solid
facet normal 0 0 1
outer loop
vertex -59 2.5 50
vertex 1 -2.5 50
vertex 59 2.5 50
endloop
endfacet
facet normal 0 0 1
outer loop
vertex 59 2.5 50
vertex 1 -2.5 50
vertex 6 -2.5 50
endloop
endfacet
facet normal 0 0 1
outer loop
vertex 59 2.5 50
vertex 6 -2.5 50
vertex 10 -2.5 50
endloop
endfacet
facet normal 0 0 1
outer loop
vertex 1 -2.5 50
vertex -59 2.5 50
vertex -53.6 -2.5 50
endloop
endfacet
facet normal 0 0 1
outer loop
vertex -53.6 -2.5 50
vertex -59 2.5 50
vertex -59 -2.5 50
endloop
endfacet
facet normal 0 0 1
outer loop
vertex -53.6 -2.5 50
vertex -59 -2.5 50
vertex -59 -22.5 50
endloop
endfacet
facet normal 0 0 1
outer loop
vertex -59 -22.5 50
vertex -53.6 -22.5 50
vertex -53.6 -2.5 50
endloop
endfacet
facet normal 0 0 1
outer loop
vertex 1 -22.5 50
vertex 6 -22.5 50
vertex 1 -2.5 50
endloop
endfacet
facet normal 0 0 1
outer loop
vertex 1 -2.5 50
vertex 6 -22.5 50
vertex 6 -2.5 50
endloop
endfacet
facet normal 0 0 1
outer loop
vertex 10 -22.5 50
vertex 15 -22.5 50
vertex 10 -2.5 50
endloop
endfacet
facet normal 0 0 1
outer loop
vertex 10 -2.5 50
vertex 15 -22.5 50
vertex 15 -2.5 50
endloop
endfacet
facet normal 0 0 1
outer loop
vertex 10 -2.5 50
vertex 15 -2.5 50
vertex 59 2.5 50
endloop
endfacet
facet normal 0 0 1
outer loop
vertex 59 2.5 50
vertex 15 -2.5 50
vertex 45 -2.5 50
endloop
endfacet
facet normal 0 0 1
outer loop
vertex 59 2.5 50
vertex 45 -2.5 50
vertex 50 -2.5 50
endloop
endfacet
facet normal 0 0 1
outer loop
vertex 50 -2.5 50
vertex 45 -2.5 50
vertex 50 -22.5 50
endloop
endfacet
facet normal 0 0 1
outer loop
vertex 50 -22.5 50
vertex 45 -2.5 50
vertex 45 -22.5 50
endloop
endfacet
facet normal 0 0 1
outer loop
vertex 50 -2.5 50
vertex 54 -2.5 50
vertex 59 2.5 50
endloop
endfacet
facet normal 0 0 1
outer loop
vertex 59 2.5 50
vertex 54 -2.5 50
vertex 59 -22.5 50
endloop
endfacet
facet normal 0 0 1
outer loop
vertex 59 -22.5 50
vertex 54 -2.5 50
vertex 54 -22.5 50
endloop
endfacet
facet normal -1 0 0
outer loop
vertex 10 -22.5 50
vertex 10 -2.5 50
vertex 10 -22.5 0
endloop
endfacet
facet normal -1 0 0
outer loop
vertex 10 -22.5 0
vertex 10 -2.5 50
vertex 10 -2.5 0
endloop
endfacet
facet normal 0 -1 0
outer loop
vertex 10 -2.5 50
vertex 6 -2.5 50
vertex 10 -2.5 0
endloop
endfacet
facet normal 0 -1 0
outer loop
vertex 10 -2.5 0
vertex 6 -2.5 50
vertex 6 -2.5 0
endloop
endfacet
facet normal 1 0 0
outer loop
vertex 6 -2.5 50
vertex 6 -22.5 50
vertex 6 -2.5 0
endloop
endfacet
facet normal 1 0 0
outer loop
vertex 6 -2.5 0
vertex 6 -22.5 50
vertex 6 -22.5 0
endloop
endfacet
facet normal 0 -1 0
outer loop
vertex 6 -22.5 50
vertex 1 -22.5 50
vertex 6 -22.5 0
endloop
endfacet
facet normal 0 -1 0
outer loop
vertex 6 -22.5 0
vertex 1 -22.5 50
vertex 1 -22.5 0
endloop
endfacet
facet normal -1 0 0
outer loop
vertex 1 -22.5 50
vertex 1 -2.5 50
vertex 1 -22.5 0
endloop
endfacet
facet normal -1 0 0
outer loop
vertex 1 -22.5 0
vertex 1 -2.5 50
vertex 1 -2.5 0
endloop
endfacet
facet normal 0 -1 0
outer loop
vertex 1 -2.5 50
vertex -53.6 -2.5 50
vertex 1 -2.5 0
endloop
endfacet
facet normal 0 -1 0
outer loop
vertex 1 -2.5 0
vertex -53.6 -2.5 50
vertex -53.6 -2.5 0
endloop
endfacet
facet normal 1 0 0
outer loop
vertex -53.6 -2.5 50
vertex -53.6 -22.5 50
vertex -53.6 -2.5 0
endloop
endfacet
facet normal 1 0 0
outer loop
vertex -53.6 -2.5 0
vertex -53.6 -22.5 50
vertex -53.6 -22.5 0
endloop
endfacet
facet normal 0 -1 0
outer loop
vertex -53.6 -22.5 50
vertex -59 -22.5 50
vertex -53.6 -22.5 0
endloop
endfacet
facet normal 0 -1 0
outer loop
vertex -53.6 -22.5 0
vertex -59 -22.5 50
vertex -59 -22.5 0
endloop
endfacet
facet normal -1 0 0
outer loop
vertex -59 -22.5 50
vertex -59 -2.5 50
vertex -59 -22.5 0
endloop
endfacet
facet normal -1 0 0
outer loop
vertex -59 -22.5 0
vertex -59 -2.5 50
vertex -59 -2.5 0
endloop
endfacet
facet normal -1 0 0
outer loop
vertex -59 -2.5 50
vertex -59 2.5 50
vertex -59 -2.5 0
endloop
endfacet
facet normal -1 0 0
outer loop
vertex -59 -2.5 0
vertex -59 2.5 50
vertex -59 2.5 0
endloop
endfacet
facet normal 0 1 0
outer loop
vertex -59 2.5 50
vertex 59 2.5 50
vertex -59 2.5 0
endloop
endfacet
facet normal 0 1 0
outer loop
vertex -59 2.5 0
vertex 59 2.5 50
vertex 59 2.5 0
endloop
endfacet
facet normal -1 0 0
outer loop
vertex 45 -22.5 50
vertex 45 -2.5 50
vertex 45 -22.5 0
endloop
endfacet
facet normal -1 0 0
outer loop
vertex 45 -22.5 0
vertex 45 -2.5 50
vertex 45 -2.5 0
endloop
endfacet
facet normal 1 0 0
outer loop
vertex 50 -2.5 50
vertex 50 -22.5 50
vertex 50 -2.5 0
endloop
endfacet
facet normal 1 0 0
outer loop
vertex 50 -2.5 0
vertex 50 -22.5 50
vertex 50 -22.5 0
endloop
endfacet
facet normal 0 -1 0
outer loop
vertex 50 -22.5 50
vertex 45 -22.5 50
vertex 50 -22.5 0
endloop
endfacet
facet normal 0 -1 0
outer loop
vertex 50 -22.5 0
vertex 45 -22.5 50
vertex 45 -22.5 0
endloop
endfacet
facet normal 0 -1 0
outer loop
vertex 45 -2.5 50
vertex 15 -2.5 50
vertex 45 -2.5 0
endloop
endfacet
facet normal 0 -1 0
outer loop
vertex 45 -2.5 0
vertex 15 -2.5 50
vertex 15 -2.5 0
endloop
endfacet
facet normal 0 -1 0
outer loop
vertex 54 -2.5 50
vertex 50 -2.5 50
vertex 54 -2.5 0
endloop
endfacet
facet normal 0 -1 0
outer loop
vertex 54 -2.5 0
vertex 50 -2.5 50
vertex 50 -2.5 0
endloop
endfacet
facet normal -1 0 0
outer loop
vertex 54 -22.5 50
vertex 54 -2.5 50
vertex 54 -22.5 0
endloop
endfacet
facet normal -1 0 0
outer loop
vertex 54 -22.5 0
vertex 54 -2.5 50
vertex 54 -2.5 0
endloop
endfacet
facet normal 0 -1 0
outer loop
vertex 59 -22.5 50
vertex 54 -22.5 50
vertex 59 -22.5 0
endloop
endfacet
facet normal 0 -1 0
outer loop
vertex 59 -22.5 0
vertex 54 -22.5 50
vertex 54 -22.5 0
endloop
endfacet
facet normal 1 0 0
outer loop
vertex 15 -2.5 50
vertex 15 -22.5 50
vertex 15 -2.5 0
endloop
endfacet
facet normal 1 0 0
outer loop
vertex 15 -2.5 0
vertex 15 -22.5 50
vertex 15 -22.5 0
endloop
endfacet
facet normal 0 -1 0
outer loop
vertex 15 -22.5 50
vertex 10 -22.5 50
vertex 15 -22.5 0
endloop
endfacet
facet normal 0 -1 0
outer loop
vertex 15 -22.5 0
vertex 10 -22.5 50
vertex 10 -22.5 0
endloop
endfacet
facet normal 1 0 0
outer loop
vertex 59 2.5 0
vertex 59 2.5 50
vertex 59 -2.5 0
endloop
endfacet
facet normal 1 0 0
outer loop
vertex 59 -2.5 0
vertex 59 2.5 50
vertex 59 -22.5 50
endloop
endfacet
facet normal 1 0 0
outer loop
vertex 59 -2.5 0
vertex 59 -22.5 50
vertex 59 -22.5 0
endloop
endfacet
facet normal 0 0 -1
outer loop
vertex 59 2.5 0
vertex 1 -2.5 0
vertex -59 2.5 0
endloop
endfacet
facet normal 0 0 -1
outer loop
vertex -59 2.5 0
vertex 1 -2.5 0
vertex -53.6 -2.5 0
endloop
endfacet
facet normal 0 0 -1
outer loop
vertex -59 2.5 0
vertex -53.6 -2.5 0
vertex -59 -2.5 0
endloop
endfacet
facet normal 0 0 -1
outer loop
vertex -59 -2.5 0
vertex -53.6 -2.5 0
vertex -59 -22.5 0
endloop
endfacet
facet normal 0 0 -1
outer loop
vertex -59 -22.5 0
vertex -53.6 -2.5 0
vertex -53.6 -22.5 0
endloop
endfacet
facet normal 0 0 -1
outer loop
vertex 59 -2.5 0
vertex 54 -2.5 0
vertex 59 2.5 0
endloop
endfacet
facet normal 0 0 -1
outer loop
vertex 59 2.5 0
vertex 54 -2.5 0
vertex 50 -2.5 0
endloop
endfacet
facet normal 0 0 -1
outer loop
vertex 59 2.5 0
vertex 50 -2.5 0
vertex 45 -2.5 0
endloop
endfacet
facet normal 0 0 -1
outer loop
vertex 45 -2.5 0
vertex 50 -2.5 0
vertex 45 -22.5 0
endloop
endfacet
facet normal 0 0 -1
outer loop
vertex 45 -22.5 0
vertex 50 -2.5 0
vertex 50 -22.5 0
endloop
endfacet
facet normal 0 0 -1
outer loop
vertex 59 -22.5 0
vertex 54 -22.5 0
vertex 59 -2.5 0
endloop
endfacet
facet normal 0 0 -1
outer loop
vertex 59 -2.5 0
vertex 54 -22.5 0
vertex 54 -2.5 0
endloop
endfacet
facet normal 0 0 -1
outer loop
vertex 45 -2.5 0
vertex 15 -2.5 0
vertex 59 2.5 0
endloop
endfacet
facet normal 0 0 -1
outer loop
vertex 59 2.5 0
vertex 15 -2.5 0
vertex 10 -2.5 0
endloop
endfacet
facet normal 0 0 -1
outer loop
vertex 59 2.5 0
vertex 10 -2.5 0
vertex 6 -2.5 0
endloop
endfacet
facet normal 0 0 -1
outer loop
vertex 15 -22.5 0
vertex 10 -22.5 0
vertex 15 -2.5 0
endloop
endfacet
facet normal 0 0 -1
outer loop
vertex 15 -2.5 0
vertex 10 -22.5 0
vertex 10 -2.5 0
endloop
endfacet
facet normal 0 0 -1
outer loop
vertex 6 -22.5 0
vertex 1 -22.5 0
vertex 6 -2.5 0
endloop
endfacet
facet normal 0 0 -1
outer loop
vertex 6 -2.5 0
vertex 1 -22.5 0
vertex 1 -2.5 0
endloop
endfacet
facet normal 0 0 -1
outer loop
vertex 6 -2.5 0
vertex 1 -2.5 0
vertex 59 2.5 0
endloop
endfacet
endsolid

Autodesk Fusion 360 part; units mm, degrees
sketch "Sketch6" plane through (0, 0, 0) normal (0, 0, 1) x (1, 0, 0)
  line L0 (59, -2.5) -> (-59, -2.5)
  line L1 (-59, -2.5) -> (-59, 2.5)
  line L2 (-59, 2.5) -> (59, 2.5)
  line L3 (59, 2.5) -> (59, -2.5)
  line L4 (59, -2.5) -> (-59, 2.5) construction
  line L5 (-59, -2.5) -> (59, 2.5) construction
  dimension "d8" = 118
  dimension "d9" = 5
sketch "Sketch7" plane through (0, 0, 0) normal (0, 0, 1) x (1, 0, 0)
  line L0 (-464, -2.5) -> (-459, -2.5)
  line L1 (-459, -2.5) -> (-459, -22.5)
  line L2 (-459, -22.5) -> (-464, -22.5)
  line L3 (-464, -22.5) -> (-464, -2.5)
  line L4 (-459, -22.5) -> (-464, -22.5)
  line L5 (-464, -22.5) -> (-464, -2.5)
  line L6 (-459, -2.5) -> (-459, -22.5)
  line L7 (-464, -2.5) -> (-459, -2.5)
  dimension "d10" = 5
  dimension "d11" = 20
  dimension "d12" = 5
  dimension "d13" = 20
sketch "Sketch8" plane through (0, 0, 0) normal (0, 0, 1) x (1, 0, 0)
  line L0 (136, -2.5) -> (141, -2.5)
  line L1 (141, -2.5) -> (141, -22.5)
  line L2 (141, -22.5) -> (136, -22.5)
  line L3 (136, -22.5) -> (136, -2.5)
  dimension "d14" = 5
  dimension "d15" = 20
sketch "Sketch9" plane through (0, 0, 0) normal (0, 0, 1) x (1, 0, 0)
  line L0 (459, -2.5) -> (464, -2.5)
  line L1 (464, -2.5) -> (464, -22.5)
  line L2 (464, -22.5) -> (459, -22.5)
  line L3 (459, -22.5) -> (459, -2.5)
  dimension "d16" = 5
  dimension "d17" = 20
sketch "Sketch10" plane through (0, 0, 0) normal (0, 0, 1) x (1, 0, 0)
  line L0 (450, -2.5) -> (455, -2.5)
  line L1 (455, -2.5) -> (455, -22.5)
  line L2 (455, -22.5) -> (450, -22.5)
  line L3 (450, -22.5) -> (450, -2.5)
  dimension "d20" = 5
  dimension "d21" = 20
sketch "Sketch11" plane through (0, 0, 0) normal (0, 0, 1) x (1, 0, 0)
  line L0 (145, -2.5) -> (150, -2.5)
  line L1 (150, -2.5) -> (150, -22.5)
  line L2 (150, -22.5) -> (145, -22.5)
  line L3 (145, -22.5) -> (145, -2.5)
  dimension "d22" = 5
  dimension "d23" = 20
extrude "Extrude1" add sketch "Sketch6" along normal blind 100 makes body 1
extrude "Extrude2" add sketch "Sketch7" along normal blind 100 bodies 1 makes body 2
extrude "Extrude3" add sketch "Sketch8" along normal blind 100 bodies 2 makes body 3
extrude "Extrude4" add sketch "Sketch11" along normal blind 100 bodies 3 makes body 4
extrude "Extrude5" add sketch "Sketch10" along normal blind 100 bodies 4 makes body 5
extrude "Extrude6" add sketch "Sketch9" along normal blind 100 bodies 5 makes body 6
move_body "Move1" bodies 2 to x (1, 0, 0) y (0, 1, 0) z (0, 0, 1) at (418, 0, 0)
move_face "MoveFace1" by (-0.4, 0, 0) 1 faces at (-46, -15.8333, 33.3333) on bodies 2
move_body "Move2" bodies 5 6 to x (1, 0, 0) y (0, 1, 0) z (0, 0, 1) at (-417.6, 0, 0)
move_body "Move3" bodies 4 3 to x (1, 0, 0) y (0, 1, 0) z (0, 0, 1) at (-140, 0, 0)
move_body "Move4" bodies 3 4 to x (1, 0, 0) y (0, 1, 0) z (0, 0, 1) at (5, 0, 0)
move_body "Move5" bodies 4 3 to x (1, 0, 0) y (0, 1, 0) z (0, 0, 1) at (7, 0, 0)
move_body "Move6" bodies 4 3 to x (1, 0, 0) y (0, 1, 0) z (0, 0, 1) at (4, 0, 0)
move_body "Move7" bodies 2 to x (1, 0, 0) y (0, 1, 0) z (0, 0, 1) at (-12.6, 0, 0)
move_body "Move8" bodies 6 5 to x (1, 0, 0) y (0, 1, 0) z (0, 0, 1) at (12.6, 0, 0)
move_body "Move9" bodies 4 3 to x (1, 0, 0) y (0, 1, 0) z (0, 0, 1) at (-11, 0, 0)
combine "Combine1" operation add target body 1 tool bodies 2 3 4 6 5
extrude "Extrude7" cut 1 faces at (2, 0.8333, 100) along direction (0, 0, -1) blind 50 on bodies 1 bodies 1
